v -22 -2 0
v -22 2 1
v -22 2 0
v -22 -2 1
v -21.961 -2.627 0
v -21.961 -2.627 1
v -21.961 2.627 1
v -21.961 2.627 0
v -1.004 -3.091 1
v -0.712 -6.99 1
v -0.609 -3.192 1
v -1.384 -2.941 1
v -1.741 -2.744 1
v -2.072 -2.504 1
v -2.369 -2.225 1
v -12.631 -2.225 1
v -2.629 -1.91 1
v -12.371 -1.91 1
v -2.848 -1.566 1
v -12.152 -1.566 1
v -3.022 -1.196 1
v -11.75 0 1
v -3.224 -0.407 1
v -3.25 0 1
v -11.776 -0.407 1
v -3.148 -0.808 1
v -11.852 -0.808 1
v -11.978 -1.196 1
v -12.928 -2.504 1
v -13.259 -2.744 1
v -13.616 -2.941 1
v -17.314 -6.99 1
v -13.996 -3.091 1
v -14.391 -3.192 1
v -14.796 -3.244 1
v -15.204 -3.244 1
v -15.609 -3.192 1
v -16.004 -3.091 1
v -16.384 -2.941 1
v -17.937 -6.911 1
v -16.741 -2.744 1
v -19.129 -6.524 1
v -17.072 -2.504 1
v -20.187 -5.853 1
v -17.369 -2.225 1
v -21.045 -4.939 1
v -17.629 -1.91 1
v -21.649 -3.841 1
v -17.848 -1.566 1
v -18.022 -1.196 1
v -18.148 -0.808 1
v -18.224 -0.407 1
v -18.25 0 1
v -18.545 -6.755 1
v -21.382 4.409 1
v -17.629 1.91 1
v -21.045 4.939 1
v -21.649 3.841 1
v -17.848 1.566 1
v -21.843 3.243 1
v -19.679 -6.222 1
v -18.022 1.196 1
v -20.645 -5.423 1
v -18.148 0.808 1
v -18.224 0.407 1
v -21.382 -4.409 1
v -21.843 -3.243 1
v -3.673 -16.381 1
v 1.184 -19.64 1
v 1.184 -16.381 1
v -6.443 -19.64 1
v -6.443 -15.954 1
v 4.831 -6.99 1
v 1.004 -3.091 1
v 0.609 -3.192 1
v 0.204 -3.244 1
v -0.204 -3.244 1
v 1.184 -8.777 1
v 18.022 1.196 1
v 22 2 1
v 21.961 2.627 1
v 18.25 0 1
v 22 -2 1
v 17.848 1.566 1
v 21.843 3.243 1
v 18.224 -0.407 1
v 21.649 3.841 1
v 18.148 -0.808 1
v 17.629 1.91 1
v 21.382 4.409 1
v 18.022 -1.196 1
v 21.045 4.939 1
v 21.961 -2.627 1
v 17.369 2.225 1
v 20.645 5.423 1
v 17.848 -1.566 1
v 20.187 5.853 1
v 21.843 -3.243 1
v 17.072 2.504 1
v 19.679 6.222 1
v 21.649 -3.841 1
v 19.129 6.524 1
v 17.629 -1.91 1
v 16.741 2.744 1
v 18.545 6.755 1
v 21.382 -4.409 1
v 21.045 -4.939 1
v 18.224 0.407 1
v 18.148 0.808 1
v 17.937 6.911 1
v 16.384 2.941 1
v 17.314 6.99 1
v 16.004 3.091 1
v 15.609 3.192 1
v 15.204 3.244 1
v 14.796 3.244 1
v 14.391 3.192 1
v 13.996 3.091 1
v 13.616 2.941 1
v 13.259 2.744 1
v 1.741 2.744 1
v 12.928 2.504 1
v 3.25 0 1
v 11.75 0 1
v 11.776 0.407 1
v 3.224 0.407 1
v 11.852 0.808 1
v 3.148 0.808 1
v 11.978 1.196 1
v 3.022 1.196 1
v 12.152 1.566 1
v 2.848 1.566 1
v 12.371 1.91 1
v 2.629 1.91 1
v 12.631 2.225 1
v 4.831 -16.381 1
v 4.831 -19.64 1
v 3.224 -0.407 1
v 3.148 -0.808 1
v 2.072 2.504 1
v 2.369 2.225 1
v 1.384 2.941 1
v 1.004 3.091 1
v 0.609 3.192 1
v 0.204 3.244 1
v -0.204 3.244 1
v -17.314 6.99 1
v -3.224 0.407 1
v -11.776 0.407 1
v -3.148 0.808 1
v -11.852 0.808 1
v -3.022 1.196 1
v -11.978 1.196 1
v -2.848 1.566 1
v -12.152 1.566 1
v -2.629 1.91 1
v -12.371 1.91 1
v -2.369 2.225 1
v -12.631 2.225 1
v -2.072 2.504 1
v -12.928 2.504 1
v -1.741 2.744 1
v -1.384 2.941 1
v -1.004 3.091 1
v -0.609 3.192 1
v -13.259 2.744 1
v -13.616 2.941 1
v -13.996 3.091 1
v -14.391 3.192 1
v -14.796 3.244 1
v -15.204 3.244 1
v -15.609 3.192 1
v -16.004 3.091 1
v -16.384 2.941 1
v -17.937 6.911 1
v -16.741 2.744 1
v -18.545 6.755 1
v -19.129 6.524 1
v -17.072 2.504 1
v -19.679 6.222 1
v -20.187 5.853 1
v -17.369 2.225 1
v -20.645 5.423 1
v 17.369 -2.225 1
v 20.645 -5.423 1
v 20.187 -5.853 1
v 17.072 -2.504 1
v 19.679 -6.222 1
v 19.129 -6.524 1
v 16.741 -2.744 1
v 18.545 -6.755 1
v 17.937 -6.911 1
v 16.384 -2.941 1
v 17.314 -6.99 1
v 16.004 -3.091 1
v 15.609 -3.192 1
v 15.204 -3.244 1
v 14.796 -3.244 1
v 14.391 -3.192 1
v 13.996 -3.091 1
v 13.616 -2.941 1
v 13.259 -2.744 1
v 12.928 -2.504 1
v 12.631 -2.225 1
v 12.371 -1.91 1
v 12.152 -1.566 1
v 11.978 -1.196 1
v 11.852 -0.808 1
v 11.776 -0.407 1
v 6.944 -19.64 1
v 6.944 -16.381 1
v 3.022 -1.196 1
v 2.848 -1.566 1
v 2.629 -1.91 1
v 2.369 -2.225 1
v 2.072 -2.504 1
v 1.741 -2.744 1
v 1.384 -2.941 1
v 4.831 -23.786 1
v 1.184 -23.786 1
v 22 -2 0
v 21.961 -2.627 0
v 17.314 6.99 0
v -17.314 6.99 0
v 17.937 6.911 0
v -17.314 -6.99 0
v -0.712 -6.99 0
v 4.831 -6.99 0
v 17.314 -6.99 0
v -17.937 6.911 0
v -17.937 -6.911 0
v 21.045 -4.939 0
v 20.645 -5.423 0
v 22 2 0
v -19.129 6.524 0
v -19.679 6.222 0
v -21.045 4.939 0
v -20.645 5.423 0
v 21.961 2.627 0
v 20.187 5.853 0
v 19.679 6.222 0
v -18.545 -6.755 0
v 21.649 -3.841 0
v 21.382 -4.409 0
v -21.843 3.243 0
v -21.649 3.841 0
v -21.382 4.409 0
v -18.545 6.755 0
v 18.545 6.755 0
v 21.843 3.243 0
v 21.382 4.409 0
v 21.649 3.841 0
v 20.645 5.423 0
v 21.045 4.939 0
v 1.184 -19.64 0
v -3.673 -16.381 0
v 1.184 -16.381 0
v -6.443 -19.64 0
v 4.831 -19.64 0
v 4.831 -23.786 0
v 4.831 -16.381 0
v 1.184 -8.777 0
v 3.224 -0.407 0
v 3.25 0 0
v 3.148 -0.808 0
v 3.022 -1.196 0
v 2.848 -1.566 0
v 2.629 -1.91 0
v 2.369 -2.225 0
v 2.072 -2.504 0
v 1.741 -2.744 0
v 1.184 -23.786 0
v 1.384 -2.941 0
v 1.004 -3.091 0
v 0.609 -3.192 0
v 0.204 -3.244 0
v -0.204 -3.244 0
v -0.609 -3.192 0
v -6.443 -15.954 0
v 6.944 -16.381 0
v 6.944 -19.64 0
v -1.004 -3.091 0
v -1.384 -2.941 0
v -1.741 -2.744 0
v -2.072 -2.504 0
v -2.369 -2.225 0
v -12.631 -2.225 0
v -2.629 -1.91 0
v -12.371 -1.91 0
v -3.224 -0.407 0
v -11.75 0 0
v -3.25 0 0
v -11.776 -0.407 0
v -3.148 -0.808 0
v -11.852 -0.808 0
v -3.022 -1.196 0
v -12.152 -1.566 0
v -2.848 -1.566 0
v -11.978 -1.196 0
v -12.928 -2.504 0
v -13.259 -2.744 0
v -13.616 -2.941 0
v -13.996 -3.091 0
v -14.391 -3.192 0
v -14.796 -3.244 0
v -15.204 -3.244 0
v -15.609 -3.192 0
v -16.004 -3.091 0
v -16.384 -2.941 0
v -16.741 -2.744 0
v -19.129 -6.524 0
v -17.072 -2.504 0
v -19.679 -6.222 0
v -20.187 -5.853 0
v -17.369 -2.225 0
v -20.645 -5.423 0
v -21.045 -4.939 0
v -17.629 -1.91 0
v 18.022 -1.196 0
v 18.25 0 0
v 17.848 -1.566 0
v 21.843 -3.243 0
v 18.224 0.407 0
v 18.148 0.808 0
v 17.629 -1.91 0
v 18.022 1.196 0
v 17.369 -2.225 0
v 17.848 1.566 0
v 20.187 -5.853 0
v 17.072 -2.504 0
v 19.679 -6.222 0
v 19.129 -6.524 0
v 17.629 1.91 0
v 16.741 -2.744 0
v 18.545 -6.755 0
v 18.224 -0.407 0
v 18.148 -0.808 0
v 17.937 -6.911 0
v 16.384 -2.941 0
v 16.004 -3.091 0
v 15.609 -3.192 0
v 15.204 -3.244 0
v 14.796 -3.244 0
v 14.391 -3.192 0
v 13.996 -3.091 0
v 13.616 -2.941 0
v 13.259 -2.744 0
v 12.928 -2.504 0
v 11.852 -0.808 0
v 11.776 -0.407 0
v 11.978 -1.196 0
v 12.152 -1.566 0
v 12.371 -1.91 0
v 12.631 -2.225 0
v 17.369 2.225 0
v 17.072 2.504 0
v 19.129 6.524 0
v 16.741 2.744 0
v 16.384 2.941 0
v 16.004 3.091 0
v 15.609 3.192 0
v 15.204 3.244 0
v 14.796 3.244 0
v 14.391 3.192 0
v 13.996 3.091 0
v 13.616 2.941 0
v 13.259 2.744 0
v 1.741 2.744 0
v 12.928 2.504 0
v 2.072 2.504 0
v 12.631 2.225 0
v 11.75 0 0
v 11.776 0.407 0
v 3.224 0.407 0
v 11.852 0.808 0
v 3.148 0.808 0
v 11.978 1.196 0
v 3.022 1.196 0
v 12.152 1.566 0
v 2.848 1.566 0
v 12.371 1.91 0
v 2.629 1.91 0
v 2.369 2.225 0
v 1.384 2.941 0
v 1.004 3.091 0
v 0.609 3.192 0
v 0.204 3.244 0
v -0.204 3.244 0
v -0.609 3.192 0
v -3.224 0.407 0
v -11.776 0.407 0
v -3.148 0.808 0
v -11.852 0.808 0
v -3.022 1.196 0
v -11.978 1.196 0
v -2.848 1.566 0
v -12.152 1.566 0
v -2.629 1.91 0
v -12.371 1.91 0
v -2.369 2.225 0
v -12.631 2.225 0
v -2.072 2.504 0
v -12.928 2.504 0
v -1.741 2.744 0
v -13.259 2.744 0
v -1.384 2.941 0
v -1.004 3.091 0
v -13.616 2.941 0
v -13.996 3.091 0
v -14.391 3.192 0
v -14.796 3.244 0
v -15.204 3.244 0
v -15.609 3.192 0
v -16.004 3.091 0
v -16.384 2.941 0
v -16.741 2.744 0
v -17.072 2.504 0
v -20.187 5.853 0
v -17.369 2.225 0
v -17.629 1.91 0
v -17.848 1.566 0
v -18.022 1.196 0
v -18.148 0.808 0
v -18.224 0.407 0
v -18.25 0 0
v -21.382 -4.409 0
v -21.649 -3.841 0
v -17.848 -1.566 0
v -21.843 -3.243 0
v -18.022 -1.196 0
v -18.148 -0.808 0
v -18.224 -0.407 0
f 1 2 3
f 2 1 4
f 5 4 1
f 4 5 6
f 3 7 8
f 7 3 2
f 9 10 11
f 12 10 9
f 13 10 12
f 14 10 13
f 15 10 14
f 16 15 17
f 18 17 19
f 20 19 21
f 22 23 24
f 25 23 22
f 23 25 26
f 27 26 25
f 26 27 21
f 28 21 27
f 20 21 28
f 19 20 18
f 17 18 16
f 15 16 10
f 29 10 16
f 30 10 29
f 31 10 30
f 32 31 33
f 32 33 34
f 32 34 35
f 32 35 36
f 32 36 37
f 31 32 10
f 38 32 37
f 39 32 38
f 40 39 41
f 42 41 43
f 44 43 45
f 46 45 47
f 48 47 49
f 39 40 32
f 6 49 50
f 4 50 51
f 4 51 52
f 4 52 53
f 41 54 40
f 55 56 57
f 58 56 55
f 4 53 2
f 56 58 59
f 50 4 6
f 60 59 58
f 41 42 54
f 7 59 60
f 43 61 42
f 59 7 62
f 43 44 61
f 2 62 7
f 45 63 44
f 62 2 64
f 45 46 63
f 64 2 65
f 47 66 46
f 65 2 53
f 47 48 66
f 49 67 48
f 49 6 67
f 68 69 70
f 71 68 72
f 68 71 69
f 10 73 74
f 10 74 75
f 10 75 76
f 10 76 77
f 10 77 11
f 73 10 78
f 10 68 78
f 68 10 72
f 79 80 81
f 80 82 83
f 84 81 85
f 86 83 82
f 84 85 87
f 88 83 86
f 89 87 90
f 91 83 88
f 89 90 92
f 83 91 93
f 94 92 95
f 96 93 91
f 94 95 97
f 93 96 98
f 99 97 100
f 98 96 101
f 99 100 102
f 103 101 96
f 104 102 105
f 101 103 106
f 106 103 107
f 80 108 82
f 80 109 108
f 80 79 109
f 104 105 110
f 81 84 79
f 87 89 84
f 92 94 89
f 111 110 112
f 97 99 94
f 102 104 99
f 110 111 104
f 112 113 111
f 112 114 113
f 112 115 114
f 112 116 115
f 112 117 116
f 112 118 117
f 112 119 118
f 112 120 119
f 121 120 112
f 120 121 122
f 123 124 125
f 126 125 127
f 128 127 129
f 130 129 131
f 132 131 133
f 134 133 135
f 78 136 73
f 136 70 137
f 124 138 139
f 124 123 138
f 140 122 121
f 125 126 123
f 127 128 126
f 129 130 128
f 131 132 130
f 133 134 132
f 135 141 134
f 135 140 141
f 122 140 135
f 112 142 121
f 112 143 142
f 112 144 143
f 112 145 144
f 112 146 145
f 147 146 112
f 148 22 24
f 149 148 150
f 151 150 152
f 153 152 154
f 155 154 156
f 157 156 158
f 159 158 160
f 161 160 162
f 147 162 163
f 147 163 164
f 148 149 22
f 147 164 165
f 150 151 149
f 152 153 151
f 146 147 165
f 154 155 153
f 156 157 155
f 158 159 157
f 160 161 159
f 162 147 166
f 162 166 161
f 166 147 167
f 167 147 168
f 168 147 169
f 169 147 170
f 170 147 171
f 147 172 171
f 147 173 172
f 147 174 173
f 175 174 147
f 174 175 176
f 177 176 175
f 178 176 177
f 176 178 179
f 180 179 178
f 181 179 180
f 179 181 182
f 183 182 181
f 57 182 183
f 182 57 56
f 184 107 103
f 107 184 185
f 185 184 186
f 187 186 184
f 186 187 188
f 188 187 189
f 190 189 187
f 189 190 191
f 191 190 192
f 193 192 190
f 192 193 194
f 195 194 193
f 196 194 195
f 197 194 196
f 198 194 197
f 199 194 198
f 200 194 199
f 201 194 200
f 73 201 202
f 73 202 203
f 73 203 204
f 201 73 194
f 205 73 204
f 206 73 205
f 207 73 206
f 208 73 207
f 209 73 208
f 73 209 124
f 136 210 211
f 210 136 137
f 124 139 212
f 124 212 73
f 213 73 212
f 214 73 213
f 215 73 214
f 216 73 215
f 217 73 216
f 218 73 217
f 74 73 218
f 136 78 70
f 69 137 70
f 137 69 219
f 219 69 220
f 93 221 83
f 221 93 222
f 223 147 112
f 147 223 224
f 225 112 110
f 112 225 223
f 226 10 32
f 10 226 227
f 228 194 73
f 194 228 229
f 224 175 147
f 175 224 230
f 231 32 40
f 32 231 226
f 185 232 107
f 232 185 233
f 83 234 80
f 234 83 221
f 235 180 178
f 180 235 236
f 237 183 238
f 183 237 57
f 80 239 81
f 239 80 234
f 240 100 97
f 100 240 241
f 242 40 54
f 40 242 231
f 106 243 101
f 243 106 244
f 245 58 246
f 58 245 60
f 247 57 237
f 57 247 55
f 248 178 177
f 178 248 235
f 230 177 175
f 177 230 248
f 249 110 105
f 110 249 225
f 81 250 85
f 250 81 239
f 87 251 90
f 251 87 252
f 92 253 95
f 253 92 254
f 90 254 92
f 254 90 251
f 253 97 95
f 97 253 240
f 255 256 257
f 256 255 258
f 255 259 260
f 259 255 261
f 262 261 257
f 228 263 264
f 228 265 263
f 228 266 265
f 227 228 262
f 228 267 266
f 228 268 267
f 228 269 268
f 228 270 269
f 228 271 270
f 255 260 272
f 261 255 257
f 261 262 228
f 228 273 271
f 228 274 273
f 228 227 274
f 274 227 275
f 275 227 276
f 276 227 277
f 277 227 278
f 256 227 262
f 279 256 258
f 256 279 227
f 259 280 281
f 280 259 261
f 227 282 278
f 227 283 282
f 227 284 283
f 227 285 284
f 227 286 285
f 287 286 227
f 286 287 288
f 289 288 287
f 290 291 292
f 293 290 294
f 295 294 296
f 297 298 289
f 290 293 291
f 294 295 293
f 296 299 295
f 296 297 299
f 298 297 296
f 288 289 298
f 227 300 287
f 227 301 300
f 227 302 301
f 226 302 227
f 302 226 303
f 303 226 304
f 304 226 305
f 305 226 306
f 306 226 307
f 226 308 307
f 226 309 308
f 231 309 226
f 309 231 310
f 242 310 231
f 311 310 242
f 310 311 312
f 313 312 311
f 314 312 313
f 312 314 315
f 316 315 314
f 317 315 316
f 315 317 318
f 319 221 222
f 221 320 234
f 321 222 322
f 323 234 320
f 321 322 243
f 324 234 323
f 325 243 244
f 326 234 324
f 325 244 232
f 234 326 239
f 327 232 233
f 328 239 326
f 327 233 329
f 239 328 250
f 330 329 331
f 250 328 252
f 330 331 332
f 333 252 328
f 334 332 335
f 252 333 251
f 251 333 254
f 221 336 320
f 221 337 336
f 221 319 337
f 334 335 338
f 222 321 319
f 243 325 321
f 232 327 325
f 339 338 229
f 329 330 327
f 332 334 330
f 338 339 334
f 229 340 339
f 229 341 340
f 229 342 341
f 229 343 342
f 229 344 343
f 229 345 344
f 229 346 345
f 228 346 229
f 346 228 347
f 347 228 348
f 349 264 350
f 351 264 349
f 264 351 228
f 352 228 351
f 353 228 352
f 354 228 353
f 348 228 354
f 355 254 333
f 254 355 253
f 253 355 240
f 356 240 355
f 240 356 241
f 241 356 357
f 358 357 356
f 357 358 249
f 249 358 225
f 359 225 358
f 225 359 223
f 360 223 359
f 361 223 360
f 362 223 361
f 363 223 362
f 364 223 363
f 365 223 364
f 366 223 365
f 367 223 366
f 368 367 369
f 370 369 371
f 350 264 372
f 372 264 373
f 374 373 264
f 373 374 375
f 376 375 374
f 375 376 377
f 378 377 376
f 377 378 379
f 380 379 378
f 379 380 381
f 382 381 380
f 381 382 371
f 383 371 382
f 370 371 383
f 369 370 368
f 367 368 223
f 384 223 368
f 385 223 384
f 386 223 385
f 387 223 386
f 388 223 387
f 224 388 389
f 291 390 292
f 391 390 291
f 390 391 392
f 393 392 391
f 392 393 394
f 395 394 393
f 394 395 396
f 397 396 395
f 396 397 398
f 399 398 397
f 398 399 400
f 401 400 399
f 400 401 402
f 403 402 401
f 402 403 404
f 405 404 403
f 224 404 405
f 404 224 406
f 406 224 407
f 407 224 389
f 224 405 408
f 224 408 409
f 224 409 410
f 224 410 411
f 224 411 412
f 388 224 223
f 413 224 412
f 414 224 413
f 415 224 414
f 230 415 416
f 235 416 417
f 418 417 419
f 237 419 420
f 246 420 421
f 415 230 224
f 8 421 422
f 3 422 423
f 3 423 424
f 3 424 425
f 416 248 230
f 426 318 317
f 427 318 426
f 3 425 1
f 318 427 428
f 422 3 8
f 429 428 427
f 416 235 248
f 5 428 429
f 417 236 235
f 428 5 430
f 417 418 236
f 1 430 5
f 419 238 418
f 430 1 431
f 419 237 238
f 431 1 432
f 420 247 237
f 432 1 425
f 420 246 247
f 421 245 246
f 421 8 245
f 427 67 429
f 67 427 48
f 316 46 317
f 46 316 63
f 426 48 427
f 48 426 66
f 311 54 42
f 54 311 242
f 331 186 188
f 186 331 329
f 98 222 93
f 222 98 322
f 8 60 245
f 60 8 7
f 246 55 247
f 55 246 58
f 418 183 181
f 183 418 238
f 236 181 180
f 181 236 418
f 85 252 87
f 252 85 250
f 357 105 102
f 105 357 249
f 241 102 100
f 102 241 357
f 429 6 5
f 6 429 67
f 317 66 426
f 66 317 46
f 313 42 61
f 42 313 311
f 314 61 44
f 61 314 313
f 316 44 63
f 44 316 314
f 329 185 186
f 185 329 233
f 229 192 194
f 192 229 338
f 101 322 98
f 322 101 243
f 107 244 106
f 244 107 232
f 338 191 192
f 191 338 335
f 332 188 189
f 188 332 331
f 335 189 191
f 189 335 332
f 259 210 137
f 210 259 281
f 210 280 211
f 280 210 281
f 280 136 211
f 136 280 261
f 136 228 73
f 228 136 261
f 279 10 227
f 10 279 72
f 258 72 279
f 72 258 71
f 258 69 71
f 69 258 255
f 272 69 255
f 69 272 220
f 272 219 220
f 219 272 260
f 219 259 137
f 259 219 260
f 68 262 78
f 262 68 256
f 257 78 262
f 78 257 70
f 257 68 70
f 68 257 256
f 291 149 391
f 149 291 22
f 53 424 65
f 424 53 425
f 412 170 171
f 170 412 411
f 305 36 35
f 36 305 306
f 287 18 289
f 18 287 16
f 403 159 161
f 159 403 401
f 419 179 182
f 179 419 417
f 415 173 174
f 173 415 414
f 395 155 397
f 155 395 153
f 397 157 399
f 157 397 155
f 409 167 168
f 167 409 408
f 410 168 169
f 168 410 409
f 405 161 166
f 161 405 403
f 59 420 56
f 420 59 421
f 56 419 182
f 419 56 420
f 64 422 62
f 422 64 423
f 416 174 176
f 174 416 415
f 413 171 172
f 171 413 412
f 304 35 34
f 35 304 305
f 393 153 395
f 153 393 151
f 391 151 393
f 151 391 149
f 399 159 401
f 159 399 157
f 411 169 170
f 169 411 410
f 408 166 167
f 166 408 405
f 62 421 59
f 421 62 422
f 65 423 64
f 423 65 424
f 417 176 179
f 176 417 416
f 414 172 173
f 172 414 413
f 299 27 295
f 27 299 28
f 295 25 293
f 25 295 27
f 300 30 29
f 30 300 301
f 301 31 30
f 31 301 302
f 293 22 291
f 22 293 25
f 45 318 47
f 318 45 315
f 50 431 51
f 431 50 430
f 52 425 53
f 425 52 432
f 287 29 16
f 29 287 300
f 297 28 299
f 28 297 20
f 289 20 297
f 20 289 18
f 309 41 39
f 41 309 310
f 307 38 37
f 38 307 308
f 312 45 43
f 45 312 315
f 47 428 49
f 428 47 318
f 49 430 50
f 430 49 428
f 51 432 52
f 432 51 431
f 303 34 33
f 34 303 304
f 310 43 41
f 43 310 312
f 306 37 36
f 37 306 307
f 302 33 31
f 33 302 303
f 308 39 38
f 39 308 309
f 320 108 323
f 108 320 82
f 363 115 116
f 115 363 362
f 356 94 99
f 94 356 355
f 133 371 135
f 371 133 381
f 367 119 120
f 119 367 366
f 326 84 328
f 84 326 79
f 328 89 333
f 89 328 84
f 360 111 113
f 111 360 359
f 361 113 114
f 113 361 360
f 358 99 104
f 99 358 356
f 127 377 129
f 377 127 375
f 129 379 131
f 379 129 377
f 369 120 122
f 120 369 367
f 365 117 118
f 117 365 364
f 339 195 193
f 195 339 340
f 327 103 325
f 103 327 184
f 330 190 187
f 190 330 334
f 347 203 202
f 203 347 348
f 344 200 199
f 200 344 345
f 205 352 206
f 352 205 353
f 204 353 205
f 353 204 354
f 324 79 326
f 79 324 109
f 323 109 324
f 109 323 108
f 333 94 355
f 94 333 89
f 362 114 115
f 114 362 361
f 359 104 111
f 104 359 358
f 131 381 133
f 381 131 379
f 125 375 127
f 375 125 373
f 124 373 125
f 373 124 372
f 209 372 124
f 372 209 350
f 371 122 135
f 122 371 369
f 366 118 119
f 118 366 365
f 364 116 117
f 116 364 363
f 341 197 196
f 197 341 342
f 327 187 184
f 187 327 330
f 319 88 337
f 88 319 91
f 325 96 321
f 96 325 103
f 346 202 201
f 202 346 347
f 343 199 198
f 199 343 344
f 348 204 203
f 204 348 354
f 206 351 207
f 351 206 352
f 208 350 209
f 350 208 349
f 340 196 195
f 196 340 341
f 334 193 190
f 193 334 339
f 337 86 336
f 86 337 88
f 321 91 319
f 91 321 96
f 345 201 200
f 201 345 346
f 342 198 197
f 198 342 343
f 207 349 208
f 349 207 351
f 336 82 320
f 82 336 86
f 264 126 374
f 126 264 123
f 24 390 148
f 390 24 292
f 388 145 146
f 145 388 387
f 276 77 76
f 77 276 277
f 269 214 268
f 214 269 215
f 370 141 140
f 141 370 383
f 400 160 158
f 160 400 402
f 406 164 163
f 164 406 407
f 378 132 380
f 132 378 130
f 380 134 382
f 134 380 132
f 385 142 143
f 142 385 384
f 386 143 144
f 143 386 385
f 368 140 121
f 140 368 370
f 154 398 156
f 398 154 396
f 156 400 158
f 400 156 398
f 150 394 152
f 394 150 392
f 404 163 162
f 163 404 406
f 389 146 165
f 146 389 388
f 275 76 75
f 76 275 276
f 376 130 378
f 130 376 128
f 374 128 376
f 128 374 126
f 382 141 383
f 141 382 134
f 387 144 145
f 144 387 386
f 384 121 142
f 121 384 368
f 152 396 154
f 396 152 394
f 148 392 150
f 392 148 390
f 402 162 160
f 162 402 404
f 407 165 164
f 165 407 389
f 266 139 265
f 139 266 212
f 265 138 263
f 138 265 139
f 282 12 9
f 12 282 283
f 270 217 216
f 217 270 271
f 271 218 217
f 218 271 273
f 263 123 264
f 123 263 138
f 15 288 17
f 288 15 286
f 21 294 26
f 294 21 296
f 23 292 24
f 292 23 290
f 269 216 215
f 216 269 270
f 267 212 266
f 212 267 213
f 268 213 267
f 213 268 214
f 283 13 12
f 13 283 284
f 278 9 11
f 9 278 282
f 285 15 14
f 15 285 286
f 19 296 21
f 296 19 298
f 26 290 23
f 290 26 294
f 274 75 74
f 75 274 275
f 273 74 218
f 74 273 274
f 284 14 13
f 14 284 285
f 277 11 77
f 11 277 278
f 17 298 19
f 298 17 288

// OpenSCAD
$fn = 50;


difference() {
	union() {
		translate(v = [0, 0, 0]) {
			rotate(a = [0, 0, 0]) {
				hull() {
					translate(v = [-17.0000000000, 2.0000000000, 0]) {
						rotate(a = [0, 0, 0]) {
							translate(v = [0, 0, 0]) {
								rotate(a = [0, 0, 0]) {
									cylinder(h = 1, r = 5);
								}
							}
						}
					}
					translate(v = [17.0000000000, 2.0000000000, 0]) {
						rotate(a = [0, 0, 0]) {
							translate(v = [0, 0, 0]) {
								rotate(a = [0, 0, 0]) {
									cylinder(h = 1, r = 5);
								}
							}
						}
					}
					translate(v = [-17.0000000000, -2.0000000000, 0]) {
						rotate(a = [0, 0, 0]) {
							translate(v = [0, 0, 0]) {
								rotate(a = [0, 0, 0]) {
									cylinder(h = 1, r = 5);
								}
							}
						}
					}
					translate(v = [17.0000000000, -2.0000000000, 0]) {
						rotate(a = [0, 0, 0]) {
							translate(v = [0, 0, 0]) {
								rotate(a = [0, 0, 0]) {
									cylinder(h = 1, r = 5);
								}
							}
						}
					}
				}
			}
		}
		translate(v = [0, -5, 0]) {
			rotate(a = [0, 0, 0]) {
				linear_extrude(height = 1) {
					text(font = "DejaVu Sans Mono:style=Bold", halign = "center", size = 19.0000000000, text = "4", valign = "top");
				}
			}
		}
	}
	union() {
		translate(v = [-15.0000000000, 0.0000000000, -125.0000000000]) {
			rotate(a = [0, 0, 0]) {
				cylinder(h = 250, r = 3.2500000000);
			}
		}
		translate(v = [15.0000000000, 0.0000000000, -125.0000000000]) {
			rotate(a = [0, 0, 0]) {
				cylinder(h = 250, r = 3.2500000000);
			}
		}
		translate(v = [15.0000000000, 0.0000000000, -125.0000000000]) {
			rotate(a = [0, 0, 0]) {
				cylinder(h = 250, r = 3.2500000000);
			}
		}
		translate(v = [0, 0, -125.0000000000]) {
			rotate(a = [0, 0, 0]) {
				cylinder(h = 250, r = 3.2500000000);
			}
		}
	}
}
